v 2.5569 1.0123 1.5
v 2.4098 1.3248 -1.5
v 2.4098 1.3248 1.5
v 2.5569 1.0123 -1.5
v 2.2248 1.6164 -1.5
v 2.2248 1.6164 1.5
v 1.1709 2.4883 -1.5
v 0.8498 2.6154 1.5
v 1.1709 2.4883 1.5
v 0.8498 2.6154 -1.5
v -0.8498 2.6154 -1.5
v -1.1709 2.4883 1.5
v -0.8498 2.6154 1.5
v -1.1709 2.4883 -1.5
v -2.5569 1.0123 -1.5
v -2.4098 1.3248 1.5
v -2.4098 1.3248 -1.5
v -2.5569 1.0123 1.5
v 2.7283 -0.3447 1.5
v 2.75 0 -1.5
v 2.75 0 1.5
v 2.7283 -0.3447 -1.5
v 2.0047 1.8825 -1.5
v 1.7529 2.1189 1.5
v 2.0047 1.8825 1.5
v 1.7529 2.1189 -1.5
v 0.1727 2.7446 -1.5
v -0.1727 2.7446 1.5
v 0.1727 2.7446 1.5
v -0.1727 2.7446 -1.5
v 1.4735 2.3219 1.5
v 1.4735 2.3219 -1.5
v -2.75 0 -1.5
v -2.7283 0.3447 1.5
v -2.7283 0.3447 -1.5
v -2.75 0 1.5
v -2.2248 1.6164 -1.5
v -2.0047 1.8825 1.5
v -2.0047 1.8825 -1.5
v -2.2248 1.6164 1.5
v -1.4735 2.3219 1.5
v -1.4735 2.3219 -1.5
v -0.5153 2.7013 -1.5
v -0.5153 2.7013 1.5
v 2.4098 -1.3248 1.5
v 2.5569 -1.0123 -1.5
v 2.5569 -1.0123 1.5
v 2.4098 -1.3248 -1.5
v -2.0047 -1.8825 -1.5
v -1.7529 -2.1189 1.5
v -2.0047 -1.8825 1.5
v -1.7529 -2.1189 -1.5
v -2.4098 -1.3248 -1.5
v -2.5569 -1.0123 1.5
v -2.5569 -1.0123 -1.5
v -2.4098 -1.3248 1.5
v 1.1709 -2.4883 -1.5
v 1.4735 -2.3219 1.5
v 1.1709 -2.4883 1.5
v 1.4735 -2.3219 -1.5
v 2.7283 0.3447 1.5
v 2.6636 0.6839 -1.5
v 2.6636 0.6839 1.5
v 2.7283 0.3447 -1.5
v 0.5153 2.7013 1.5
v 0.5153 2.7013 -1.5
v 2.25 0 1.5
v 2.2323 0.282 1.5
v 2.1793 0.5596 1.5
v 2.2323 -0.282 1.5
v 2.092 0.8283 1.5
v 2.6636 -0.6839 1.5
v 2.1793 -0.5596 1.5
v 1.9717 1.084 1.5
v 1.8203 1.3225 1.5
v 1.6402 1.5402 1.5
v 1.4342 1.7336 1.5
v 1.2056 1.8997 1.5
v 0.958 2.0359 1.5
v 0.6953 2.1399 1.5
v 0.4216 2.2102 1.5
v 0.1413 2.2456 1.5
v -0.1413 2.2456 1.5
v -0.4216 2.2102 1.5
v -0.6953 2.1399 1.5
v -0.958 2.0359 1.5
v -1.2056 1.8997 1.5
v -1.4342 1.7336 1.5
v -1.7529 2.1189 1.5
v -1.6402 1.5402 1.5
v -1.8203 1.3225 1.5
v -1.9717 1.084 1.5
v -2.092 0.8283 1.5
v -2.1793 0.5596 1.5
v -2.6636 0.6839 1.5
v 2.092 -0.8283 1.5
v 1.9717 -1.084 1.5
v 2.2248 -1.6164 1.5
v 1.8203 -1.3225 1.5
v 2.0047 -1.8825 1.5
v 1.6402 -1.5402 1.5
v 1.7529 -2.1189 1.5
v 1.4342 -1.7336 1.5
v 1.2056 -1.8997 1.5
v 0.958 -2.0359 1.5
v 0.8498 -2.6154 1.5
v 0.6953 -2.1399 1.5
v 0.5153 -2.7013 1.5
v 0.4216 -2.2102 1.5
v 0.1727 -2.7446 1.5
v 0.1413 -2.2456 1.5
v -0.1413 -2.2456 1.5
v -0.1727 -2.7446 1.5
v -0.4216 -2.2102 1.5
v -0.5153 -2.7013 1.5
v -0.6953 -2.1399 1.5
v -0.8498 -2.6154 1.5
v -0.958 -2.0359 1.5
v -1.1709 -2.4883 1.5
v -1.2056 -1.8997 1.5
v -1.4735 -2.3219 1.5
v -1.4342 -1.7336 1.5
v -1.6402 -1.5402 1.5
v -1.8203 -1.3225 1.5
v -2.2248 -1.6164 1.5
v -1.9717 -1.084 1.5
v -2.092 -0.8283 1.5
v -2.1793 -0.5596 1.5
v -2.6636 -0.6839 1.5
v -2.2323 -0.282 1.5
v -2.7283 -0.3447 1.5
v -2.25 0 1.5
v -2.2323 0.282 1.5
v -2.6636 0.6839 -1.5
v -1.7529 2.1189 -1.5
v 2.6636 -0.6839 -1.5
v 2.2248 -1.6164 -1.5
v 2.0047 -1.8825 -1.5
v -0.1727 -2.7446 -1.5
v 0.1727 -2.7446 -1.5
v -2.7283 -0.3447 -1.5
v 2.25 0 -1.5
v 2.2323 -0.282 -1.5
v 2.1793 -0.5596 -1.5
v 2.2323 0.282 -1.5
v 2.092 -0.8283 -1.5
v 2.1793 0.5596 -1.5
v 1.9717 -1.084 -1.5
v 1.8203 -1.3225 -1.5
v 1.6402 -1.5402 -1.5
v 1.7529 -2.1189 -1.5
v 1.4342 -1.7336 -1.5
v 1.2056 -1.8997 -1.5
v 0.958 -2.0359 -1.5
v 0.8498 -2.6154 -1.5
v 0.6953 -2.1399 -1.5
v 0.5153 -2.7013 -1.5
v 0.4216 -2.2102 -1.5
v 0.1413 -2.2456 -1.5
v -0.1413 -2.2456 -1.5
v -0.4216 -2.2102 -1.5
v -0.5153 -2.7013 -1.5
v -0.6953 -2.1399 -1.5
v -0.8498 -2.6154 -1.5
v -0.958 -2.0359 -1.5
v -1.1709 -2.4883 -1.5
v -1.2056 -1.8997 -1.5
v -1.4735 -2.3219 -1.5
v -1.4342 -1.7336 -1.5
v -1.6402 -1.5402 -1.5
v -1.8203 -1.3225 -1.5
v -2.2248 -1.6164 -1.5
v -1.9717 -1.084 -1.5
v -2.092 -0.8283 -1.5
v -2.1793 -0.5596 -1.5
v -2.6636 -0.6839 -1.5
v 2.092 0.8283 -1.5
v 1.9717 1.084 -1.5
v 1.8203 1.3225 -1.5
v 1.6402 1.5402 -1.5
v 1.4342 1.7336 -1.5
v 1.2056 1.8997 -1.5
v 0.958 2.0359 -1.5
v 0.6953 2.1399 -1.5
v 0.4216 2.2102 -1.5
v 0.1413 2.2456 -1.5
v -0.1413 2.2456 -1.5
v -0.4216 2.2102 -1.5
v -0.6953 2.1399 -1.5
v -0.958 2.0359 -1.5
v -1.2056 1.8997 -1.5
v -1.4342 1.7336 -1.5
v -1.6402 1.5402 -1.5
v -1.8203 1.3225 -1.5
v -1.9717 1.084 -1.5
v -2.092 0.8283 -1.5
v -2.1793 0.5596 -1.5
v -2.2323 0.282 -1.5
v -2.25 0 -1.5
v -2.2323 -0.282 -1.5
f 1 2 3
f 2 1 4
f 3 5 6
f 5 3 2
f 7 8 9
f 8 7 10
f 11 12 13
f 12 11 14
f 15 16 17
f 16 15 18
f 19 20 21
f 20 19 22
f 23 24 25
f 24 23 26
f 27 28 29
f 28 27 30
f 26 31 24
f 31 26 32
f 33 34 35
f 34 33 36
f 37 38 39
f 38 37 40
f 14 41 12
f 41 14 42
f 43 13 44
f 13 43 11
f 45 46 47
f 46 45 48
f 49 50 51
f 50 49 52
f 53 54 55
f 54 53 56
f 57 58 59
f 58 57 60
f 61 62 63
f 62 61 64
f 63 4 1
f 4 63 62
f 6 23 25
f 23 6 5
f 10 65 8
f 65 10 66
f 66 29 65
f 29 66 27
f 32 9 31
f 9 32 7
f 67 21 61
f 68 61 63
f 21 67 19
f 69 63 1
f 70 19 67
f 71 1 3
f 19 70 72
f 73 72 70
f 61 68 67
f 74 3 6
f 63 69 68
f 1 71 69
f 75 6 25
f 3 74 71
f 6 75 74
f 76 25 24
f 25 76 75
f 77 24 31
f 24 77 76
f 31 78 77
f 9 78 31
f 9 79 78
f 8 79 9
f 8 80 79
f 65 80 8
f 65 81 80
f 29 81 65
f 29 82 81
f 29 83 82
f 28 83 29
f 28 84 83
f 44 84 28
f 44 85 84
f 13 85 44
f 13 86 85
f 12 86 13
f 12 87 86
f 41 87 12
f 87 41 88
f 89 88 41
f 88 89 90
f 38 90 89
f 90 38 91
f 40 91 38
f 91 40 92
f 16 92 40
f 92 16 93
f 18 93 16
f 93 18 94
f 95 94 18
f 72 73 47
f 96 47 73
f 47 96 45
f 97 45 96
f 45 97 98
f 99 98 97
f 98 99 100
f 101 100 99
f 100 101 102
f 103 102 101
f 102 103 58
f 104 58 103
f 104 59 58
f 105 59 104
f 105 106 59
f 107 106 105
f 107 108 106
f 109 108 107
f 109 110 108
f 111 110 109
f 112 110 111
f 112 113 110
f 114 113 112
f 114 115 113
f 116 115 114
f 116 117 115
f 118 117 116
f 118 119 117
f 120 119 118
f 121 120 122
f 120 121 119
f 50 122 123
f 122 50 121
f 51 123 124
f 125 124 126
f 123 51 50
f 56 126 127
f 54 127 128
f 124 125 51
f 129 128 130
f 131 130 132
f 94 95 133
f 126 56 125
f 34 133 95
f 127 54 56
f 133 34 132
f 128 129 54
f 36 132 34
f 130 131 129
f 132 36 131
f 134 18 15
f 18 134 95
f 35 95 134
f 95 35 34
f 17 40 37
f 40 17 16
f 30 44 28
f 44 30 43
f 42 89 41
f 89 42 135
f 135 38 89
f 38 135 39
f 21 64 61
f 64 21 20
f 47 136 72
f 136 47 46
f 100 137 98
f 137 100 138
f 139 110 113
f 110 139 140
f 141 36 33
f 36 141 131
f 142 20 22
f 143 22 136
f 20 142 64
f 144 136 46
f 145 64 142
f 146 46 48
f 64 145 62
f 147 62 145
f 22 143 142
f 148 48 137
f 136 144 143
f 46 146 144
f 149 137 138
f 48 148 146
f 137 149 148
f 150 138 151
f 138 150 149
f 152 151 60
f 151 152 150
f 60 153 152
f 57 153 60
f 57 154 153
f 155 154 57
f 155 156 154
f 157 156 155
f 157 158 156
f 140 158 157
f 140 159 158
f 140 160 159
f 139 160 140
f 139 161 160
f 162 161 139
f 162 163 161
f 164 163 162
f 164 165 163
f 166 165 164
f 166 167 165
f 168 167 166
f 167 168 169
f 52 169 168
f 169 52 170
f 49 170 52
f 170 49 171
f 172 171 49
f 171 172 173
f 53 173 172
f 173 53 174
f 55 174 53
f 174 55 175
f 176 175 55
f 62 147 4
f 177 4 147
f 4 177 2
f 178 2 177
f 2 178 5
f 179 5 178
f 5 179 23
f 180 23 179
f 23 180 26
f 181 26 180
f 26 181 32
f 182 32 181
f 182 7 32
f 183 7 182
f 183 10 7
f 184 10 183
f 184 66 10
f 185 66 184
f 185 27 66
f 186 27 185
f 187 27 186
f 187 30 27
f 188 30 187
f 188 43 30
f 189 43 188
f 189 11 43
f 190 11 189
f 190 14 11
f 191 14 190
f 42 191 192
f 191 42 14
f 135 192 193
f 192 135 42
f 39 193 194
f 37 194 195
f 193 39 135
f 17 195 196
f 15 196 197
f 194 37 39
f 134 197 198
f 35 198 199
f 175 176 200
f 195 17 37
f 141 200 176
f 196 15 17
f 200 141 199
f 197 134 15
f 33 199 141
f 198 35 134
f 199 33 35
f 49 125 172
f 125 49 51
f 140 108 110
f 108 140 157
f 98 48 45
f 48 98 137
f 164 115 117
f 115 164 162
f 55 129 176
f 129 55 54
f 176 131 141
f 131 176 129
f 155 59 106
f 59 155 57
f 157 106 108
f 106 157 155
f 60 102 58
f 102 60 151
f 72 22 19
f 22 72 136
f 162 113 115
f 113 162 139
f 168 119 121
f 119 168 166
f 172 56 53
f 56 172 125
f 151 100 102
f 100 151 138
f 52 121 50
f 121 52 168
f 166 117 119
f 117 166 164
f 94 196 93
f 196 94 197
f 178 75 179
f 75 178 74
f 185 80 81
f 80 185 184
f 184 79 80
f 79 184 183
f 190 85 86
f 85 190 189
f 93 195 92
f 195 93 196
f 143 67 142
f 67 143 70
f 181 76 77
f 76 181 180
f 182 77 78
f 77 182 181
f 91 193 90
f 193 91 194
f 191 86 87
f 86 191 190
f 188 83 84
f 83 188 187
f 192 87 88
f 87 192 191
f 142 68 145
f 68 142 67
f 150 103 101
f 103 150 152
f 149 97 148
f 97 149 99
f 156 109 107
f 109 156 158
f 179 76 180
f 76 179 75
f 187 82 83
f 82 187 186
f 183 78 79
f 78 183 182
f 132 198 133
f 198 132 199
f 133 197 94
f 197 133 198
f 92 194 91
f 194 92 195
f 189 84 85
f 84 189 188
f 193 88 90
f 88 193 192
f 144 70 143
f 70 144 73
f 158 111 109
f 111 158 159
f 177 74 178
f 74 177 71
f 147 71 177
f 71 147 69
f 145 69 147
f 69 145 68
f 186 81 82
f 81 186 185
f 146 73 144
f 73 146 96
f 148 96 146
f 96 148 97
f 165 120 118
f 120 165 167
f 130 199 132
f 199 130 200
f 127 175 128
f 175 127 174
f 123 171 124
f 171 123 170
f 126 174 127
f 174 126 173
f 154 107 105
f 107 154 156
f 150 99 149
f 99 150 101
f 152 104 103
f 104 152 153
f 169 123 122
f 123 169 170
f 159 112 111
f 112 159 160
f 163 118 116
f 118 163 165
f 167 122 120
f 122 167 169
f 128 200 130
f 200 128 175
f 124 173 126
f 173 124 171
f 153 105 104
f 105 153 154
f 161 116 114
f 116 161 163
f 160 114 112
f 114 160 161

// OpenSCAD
$fn = 50;


difference() {
	union() {
		translate(v = [0, 0, -1.5000000000]) {
			cylinder(h = 3, r = 2.7500000000);
		}
	}
	union() {
		translate(v = [0, 0, -100.0000000000]) {
			cylinder(h = 200, r = 2.2500000000);
		}
	}
}
